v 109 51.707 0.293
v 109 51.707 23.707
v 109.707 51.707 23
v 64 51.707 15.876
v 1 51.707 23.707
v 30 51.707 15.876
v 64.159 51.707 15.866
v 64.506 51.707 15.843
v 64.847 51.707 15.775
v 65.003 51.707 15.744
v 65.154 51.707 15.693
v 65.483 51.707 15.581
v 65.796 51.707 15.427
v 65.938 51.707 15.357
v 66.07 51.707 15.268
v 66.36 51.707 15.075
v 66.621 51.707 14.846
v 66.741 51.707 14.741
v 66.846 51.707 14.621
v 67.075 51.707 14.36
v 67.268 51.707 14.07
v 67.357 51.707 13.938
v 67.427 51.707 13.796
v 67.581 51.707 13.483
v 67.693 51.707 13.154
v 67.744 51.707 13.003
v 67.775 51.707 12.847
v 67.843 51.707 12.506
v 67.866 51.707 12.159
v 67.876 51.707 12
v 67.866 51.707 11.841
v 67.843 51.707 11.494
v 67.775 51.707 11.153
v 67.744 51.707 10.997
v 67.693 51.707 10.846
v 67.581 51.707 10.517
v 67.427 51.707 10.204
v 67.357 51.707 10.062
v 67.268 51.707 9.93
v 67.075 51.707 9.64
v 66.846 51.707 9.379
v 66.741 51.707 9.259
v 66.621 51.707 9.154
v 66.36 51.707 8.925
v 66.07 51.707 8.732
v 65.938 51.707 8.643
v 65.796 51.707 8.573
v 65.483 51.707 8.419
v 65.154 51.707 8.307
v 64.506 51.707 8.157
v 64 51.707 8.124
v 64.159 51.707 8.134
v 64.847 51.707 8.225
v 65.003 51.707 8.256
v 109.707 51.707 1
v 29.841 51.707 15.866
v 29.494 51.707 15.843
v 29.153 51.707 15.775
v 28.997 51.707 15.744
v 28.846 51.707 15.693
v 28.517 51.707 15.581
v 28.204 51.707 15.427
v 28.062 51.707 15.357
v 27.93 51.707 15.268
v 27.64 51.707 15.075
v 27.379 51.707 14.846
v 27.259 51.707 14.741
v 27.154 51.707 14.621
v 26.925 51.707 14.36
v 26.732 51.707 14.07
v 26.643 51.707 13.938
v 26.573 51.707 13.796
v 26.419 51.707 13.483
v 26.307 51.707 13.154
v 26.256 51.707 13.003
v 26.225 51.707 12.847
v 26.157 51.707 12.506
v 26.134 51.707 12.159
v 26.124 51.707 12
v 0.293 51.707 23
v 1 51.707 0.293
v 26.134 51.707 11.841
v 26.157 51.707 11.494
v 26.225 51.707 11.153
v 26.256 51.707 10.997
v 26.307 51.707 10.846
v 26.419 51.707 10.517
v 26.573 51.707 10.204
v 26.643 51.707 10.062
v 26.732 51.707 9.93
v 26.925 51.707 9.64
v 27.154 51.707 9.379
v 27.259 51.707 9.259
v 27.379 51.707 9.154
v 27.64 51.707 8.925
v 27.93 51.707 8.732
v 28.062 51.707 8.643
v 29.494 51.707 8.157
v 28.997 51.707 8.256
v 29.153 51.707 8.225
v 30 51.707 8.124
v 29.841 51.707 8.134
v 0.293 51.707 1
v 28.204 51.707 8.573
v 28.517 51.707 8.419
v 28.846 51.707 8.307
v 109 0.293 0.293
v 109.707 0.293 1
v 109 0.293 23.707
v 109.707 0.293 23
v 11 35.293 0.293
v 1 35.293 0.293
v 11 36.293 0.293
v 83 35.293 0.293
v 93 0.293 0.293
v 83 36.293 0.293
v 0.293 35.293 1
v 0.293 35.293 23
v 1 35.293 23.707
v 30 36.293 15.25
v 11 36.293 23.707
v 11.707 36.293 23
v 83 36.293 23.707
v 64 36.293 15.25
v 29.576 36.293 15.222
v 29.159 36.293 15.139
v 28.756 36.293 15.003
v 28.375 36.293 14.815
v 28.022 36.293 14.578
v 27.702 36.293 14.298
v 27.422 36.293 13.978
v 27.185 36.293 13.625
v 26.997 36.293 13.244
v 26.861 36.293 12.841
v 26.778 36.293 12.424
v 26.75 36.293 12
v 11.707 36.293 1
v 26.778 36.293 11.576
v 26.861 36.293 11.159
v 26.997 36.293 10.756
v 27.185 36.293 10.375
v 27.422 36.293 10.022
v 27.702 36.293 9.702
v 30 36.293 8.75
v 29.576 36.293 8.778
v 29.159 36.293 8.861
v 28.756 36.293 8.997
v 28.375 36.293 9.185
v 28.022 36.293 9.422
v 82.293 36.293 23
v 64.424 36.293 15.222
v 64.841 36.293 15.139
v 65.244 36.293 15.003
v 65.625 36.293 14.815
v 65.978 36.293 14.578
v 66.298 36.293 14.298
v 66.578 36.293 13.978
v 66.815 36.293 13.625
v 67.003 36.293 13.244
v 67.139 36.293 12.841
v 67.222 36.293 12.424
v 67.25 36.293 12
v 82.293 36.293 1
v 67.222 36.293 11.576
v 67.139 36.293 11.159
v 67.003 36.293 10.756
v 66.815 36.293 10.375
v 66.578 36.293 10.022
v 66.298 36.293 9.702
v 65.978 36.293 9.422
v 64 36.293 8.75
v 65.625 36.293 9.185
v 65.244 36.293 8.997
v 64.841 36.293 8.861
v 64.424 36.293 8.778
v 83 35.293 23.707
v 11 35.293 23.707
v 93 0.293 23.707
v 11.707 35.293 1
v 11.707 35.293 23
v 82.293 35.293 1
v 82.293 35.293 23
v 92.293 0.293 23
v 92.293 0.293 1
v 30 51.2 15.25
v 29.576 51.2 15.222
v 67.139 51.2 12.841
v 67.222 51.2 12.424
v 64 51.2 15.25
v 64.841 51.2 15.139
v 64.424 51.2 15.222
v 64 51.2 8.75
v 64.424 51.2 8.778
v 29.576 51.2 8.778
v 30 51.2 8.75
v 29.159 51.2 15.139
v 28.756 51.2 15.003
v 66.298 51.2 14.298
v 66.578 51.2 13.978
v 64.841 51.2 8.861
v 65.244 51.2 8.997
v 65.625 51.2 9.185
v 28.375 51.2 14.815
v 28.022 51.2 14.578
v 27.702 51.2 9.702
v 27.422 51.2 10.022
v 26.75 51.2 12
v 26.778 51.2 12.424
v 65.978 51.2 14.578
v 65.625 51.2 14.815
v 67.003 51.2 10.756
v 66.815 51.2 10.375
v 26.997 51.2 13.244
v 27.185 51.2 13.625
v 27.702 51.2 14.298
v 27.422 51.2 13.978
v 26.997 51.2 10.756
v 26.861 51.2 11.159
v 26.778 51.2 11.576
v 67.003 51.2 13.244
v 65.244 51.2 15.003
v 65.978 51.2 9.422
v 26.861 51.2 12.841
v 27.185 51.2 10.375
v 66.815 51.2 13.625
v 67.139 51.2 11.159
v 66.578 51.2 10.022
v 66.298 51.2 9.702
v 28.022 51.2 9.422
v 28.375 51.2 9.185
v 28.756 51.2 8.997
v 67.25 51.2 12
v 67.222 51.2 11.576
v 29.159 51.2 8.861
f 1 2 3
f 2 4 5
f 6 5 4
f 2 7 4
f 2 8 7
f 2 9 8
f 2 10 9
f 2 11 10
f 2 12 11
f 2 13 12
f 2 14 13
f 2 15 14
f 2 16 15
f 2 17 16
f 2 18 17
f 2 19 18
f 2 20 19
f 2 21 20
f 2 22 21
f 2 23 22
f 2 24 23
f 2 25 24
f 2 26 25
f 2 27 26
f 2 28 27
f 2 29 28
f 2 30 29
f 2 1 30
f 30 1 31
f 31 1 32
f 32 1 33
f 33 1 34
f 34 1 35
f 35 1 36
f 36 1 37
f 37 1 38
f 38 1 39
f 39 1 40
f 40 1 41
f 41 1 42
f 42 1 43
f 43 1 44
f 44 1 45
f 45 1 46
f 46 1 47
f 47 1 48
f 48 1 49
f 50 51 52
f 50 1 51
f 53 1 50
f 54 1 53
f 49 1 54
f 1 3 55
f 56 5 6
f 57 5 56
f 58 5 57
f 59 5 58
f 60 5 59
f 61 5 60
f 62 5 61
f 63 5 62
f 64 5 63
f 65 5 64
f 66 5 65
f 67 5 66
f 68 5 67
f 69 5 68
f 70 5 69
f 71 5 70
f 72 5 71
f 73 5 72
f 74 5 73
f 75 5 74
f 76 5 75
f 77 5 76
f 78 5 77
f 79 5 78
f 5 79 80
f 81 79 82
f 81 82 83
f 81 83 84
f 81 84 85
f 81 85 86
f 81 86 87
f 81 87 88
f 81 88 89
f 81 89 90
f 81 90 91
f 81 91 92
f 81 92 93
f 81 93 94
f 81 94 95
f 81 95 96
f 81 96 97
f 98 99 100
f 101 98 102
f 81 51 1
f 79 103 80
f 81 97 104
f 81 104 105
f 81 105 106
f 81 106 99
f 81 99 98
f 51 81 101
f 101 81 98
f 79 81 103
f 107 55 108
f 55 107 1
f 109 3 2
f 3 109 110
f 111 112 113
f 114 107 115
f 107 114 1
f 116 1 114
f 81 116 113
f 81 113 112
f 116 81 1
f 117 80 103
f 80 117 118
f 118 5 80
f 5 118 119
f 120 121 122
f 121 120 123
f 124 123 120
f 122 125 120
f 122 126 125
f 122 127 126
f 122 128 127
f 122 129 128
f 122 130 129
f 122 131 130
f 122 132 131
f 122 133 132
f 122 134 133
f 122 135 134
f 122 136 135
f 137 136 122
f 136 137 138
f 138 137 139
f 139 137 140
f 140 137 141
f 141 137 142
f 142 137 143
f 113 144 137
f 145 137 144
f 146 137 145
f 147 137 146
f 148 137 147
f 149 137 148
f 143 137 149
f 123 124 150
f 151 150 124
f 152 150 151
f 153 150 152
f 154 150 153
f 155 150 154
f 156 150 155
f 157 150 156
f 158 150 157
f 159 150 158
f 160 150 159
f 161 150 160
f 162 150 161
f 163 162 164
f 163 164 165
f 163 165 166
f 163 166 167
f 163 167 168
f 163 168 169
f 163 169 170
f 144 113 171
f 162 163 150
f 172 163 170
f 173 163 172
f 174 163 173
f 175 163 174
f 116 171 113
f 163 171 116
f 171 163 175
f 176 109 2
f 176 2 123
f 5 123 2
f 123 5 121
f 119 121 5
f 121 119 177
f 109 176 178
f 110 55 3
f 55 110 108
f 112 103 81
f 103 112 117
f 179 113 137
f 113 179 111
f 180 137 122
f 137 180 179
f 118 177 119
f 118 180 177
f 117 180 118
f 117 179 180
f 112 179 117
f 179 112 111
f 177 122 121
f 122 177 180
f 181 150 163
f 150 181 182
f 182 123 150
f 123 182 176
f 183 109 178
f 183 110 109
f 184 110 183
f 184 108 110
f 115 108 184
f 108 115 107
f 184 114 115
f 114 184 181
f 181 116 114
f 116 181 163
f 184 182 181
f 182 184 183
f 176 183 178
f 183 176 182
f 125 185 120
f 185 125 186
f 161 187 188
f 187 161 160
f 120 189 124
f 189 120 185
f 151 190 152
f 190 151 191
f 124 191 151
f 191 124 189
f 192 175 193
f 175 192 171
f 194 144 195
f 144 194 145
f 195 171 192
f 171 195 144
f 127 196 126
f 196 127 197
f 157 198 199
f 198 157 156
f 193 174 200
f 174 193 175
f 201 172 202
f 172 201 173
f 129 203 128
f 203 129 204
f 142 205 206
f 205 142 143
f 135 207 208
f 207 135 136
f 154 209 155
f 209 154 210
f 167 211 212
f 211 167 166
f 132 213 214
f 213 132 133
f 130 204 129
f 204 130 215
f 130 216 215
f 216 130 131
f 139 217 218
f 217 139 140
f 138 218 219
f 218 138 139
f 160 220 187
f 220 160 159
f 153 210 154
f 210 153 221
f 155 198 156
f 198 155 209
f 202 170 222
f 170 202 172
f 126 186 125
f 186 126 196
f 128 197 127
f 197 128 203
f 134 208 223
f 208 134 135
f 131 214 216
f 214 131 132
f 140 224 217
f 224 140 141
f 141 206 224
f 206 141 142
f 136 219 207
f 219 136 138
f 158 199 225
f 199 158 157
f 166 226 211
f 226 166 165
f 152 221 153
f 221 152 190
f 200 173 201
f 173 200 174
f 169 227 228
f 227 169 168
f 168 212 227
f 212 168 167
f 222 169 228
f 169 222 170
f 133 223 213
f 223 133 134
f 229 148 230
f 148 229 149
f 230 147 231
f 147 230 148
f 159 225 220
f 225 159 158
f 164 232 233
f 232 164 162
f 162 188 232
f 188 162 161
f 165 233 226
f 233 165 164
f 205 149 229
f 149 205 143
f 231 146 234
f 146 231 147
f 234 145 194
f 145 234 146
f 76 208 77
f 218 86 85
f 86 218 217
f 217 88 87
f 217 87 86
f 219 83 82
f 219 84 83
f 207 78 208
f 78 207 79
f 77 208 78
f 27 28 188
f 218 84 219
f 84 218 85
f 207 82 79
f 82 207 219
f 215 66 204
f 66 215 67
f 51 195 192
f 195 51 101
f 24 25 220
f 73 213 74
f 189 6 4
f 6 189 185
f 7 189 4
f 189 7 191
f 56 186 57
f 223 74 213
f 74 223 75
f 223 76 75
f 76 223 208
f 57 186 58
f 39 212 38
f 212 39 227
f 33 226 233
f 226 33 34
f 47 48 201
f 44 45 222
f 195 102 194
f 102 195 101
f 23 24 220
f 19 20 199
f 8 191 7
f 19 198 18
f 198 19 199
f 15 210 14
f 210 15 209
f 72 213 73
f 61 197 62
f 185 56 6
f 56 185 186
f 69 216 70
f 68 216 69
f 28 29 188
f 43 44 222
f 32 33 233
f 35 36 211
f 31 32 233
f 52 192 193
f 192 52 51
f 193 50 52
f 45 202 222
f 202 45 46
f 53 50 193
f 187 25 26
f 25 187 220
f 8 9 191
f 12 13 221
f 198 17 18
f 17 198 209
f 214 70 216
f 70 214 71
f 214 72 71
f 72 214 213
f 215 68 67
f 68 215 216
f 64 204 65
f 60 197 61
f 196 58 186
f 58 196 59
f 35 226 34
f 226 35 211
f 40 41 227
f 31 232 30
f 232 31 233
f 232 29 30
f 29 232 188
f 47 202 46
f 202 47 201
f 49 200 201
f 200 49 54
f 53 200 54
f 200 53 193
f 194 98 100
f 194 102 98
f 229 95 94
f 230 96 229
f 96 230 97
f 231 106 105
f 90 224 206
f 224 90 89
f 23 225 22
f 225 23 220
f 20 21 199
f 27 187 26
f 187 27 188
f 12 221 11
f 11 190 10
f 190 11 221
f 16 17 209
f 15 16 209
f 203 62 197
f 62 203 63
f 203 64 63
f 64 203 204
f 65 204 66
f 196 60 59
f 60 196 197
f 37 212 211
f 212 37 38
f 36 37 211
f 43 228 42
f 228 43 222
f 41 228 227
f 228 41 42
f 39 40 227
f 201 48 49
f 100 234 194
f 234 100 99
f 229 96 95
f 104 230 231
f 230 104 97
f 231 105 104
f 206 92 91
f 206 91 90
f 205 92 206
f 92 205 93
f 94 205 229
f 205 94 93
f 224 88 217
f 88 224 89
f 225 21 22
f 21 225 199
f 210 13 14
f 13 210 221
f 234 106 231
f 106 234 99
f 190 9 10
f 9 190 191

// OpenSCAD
// Printed hold-down clamp for the CNC bed's channel-strut rails (41mm strut, ~180mm
// centres; one tree per setup, two to four clamps). The bolt goes into a strut
// spring/channel nut.
// A bar with a nose that presses on the tread's edge and a heel that rests on the bed;
// the M6 bolt goes through the slot between them, nearer the nose so most of the force
// lands on the work. PETG, printed on its side (slot vertical) so the layers run along
// the bar and don't split under the bolt.
//
// Rob's bed (23 Oct 2026): MDF topper with 41x21 lipped steel strut (Unistrut type,
// 2.5mm wall) set in grooves, strut top ~4mm below the topper; M6 bolts into strut channel nuts. The tread sits on a sacrificial
// sheet (the holes go through), the heel stands on the topper beside it.
// Bolt length: printed with the clamp's console echo (M6 x that, or the next size up).

part = "clamp";          // "clamp" or "washer"

bolt_d     = 6.5;        // M6 clearance
tree_t     = 30;         // tread
spoil_t    = 6;          // sacrificial sheet under the tread (set to yours)
strut_drop = 4;          // strut top below the topper
strut_lip  = 2.5;        // strut wall: the channel nut sits under the lips
nut_t      = 6;          // M6 spring channel nut
work_h     = tree_t + spoil_t;   // top of the tread above the topper
bar_l      = 110;
bar_w      = 24;
bar_t      = 16;         // bar thickness above the work
nose_l     = 12;         // grip on the work: keep <= 10-12mm, the holes start 16mm in
nose_pad   = 1;          // nose stands proud, so the bar tilts onto the work, not the heel
heel_l     = 18;
slot_from_nose = 30;     // slot starts this far from the nose end
slot_len   = 34;         // adjustment along the bar
washer_od  = 18;
washer_t   = 4;

$fn = 48;

// head on the washer, through the bar, down the groove, past the lip, through the nut
echo(bolt_len = ceil(washer_t + bar_t + work_h + strut_drop + strut_lip + nut_t));

ch = 1;                  // edge bevel all round (Minkowski with a coarse sphere)

module clamp() {
    difference() {
        minkowski() {
            union() {           // every block shrunk by ch, then grown back with bevelled edges
                translate([ch, ch, work_h + ch]) cube([bar_l - 2 * ch, bar_w - 2 * ch, bar_t - 2 * ch]);
                translate([ch, ch, work_h - nose_pad + ch]) cube([nose_l - 2 * ch, bar_w - 2 * ch, nose_pad + ch]);
                hull() {        // heel, 45 degree inside face so it prints on its side
                    translate([bar_l - heel_l + ch, ch, ch]) cube([heel_l - 2 * ch, bar_w - 2 * ch, work_h]);
                    translate([bar_l - heel_l - 10 + ch, ch, work_h]) cube([heel_l + 10 - 2 * ch, bar_w - 2 * ch, 0.01]);
                }
            }
            sphere(r = ch, $fn = 4);   // a coarse sphere: bevels every edge
        }
        // bolt slot, chamfered at the top for the washer
        hull() for (x = [slot_from_nose, slot_from_nose + slot_len])
            translate([x, bar_w / 2, work_h - 1]) cylinder(d = bolt_d, h = bar_t + 2);
        hull() for (x = [slot_from_nose, slot_from_nose + slot_len])
            translate([x, bar_w / 2, work_h + bar_t - 0.8]) cylinder(d1 = bolt_d, d2 = bolt_d + 2, h = 0.81);
        // grip ridges under the nose
        for (x = [2:3:nose_l - 2]) translate([x, -1, work_h - nose_pad - 0.6]) rotate([0, 45, 0]) cube([1, bar_w + 2, 1]);
    }
}

module washer() {
    difference() {
        hull() {            // edges chamfered
            cylinder(d = washer_od - 1.6, h = washer_t);
            translate([0, 0, 0.8]) cylinder(d = washer_od, h = washer_t - 1.6);
        }
        translate([0, 0, -1]) cylinder(d = bolt_d, h = washer_t + 2);
    }
}

if (part == "clamp") rotate([-90, 0, 0]) translate([0, -bar_w, 0]) clamp();   // on its side
else washer();
